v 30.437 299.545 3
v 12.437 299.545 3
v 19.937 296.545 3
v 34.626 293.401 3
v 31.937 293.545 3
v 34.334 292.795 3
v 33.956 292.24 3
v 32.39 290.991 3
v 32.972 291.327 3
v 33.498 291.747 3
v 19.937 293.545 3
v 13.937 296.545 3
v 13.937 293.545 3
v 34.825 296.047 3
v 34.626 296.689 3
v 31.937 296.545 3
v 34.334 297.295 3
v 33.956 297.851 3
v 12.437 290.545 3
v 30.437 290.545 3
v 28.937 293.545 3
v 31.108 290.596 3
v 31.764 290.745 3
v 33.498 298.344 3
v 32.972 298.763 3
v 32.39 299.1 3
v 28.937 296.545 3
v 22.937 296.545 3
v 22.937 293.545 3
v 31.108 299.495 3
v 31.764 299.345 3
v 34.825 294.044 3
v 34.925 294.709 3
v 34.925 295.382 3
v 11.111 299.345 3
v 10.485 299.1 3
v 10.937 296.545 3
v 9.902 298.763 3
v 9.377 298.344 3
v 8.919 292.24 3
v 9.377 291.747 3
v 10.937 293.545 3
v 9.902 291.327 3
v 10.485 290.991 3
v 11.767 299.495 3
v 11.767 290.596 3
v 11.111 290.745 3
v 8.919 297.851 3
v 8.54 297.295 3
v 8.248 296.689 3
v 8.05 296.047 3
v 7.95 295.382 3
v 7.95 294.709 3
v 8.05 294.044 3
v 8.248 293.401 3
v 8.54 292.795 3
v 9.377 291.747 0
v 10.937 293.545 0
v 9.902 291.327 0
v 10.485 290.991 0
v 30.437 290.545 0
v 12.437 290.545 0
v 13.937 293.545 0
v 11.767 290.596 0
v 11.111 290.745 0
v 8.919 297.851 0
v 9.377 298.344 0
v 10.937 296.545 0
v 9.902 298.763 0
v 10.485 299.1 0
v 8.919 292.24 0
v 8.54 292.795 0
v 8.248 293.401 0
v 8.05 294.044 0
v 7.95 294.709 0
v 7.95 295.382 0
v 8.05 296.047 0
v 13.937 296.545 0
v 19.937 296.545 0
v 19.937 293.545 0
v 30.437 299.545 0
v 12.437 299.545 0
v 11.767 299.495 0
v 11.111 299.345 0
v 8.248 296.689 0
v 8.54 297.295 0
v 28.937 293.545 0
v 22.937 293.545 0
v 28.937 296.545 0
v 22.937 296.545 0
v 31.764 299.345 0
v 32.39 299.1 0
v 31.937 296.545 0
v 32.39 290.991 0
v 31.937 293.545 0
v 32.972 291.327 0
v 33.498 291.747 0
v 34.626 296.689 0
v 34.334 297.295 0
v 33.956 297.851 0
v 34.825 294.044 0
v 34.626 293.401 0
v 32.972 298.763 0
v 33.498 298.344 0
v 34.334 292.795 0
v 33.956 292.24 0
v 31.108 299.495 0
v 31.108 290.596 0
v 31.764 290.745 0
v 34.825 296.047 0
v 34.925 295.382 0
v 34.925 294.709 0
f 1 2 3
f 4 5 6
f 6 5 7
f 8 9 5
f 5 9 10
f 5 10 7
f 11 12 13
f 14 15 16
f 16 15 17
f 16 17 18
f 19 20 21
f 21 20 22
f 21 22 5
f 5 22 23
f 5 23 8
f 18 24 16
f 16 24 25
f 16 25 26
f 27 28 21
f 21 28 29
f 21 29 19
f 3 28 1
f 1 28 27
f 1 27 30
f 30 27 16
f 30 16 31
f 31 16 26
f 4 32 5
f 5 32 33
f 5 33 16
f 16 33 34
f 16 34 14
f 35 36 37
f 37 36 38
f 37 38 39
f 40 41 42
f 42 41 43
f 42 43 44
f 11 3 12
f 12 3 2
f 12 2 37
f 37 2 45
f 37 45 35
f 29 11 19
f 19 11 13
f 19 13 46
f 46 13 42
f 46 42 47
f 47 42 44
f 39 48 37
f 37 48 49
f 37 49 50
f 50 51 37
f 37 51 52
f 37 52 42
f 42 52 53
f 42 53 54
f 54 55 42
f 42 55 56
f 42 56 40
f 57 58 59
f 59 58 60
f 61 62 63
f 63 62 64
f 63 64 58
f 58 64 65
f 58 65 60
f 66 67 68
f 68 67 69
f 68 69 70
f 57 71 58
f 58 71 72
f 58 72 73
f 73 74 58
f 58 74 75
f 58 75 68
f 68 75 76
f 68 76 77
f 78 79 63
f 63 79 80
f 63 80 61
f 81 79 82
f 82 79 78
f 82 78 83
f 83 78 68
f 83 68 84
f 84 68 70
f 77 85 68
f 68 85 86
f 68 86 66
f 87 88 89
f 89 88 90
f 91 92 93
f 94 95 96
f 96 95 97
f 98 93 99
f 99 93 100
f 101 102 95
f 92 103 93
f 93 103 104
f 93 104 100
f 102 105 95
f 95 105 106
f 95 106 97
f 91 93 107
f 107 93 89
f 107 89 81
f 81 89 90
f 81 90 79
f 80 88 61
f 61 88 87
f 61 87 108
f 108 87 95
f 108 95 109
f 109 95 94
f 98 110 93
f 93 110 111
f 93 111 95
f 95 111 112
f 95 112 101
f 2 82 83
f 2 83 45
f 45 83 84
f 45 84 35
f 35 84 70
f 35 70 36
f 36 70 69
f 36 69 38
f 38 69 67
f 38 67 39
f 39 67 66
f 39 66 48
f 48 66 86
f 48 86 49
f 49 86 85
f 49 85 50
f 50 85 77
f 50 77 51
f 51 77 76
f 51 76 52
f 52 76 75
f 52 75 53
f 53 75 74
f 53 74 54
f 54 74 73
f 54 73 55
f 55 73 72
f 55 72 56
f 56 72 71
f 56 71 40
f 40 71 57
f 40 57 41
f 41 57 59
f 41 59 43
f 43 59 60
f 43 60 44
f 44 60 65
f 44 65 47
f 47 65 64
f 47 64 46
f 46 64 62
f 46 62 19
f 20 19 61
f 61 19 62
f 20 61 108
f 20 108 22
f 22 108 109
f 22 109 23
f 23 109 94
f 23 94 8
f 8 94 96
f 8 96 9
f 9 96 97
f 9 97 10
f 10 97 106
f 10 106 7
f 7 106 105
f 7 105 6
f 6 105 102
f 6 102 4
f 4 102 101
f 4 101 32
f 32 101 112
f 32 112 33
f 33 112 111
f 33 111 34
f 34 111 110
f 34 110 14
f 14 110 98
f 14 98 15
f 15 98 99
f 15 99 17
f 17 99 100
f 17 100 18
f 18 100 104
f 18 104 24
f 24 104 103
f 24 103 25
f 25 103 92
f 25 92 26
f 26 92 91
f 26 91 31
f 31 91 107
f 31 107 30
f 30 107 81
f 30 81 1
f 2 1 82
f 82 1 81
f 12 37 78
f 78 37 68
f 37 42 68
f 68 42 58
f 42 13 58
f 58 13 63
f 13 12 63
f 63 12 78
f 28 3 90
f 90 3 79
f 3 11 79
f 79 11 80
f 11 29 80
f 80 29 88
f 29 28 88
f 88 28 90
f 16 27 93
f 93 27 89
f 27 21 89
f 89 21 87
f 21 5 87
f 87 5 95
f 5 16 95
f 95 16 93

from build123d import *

# Parameters (mm, degrees)
MODEL_W                 = 3
MODEL_H                 = 3
SALIENTE_EXTRUIR1_DEPTH = 3


with BuildPart() as part:
    # Model → Saliente-Extruir1 (new body)
    with BuildSketch(Plane.XY):
        with BuildLine():
            Line((12.437380241, 299.545342772), (30.437380241, 299.545342772))
            ThreePointArc((30.437380241, 299.545342772), (34.937380241, 295.045342772), (30.437380241, 290.545342772))
            Line((30.437380241, 290.545342772), (12.437380241, 290.545342772))
            ThreePointArc((12.437380241, 290.545342772), (7.937380241, 295.045342772), (12.437380241, 299.545342772))
        make_face()
        with Locations((12.437380241, 295.045342772)):
            Rectangle(MODEL_W, MODEL_H, mode=Mode.SUBTRACT)
        with Locations((21.437380241, 295.045342772)):
            Rectangle(MODEL_W, MODEL_H, mode=Mode.SUBTRACT)
        with Locations((30.437380241, 295.045342772)):
            Rectangle(MODEL_W, MODEL_H, mode=Mode.SUBTRACT)
    extrude(amount=SALIENTE_EXTRUIR1_DEPTH)


solid = part.part
